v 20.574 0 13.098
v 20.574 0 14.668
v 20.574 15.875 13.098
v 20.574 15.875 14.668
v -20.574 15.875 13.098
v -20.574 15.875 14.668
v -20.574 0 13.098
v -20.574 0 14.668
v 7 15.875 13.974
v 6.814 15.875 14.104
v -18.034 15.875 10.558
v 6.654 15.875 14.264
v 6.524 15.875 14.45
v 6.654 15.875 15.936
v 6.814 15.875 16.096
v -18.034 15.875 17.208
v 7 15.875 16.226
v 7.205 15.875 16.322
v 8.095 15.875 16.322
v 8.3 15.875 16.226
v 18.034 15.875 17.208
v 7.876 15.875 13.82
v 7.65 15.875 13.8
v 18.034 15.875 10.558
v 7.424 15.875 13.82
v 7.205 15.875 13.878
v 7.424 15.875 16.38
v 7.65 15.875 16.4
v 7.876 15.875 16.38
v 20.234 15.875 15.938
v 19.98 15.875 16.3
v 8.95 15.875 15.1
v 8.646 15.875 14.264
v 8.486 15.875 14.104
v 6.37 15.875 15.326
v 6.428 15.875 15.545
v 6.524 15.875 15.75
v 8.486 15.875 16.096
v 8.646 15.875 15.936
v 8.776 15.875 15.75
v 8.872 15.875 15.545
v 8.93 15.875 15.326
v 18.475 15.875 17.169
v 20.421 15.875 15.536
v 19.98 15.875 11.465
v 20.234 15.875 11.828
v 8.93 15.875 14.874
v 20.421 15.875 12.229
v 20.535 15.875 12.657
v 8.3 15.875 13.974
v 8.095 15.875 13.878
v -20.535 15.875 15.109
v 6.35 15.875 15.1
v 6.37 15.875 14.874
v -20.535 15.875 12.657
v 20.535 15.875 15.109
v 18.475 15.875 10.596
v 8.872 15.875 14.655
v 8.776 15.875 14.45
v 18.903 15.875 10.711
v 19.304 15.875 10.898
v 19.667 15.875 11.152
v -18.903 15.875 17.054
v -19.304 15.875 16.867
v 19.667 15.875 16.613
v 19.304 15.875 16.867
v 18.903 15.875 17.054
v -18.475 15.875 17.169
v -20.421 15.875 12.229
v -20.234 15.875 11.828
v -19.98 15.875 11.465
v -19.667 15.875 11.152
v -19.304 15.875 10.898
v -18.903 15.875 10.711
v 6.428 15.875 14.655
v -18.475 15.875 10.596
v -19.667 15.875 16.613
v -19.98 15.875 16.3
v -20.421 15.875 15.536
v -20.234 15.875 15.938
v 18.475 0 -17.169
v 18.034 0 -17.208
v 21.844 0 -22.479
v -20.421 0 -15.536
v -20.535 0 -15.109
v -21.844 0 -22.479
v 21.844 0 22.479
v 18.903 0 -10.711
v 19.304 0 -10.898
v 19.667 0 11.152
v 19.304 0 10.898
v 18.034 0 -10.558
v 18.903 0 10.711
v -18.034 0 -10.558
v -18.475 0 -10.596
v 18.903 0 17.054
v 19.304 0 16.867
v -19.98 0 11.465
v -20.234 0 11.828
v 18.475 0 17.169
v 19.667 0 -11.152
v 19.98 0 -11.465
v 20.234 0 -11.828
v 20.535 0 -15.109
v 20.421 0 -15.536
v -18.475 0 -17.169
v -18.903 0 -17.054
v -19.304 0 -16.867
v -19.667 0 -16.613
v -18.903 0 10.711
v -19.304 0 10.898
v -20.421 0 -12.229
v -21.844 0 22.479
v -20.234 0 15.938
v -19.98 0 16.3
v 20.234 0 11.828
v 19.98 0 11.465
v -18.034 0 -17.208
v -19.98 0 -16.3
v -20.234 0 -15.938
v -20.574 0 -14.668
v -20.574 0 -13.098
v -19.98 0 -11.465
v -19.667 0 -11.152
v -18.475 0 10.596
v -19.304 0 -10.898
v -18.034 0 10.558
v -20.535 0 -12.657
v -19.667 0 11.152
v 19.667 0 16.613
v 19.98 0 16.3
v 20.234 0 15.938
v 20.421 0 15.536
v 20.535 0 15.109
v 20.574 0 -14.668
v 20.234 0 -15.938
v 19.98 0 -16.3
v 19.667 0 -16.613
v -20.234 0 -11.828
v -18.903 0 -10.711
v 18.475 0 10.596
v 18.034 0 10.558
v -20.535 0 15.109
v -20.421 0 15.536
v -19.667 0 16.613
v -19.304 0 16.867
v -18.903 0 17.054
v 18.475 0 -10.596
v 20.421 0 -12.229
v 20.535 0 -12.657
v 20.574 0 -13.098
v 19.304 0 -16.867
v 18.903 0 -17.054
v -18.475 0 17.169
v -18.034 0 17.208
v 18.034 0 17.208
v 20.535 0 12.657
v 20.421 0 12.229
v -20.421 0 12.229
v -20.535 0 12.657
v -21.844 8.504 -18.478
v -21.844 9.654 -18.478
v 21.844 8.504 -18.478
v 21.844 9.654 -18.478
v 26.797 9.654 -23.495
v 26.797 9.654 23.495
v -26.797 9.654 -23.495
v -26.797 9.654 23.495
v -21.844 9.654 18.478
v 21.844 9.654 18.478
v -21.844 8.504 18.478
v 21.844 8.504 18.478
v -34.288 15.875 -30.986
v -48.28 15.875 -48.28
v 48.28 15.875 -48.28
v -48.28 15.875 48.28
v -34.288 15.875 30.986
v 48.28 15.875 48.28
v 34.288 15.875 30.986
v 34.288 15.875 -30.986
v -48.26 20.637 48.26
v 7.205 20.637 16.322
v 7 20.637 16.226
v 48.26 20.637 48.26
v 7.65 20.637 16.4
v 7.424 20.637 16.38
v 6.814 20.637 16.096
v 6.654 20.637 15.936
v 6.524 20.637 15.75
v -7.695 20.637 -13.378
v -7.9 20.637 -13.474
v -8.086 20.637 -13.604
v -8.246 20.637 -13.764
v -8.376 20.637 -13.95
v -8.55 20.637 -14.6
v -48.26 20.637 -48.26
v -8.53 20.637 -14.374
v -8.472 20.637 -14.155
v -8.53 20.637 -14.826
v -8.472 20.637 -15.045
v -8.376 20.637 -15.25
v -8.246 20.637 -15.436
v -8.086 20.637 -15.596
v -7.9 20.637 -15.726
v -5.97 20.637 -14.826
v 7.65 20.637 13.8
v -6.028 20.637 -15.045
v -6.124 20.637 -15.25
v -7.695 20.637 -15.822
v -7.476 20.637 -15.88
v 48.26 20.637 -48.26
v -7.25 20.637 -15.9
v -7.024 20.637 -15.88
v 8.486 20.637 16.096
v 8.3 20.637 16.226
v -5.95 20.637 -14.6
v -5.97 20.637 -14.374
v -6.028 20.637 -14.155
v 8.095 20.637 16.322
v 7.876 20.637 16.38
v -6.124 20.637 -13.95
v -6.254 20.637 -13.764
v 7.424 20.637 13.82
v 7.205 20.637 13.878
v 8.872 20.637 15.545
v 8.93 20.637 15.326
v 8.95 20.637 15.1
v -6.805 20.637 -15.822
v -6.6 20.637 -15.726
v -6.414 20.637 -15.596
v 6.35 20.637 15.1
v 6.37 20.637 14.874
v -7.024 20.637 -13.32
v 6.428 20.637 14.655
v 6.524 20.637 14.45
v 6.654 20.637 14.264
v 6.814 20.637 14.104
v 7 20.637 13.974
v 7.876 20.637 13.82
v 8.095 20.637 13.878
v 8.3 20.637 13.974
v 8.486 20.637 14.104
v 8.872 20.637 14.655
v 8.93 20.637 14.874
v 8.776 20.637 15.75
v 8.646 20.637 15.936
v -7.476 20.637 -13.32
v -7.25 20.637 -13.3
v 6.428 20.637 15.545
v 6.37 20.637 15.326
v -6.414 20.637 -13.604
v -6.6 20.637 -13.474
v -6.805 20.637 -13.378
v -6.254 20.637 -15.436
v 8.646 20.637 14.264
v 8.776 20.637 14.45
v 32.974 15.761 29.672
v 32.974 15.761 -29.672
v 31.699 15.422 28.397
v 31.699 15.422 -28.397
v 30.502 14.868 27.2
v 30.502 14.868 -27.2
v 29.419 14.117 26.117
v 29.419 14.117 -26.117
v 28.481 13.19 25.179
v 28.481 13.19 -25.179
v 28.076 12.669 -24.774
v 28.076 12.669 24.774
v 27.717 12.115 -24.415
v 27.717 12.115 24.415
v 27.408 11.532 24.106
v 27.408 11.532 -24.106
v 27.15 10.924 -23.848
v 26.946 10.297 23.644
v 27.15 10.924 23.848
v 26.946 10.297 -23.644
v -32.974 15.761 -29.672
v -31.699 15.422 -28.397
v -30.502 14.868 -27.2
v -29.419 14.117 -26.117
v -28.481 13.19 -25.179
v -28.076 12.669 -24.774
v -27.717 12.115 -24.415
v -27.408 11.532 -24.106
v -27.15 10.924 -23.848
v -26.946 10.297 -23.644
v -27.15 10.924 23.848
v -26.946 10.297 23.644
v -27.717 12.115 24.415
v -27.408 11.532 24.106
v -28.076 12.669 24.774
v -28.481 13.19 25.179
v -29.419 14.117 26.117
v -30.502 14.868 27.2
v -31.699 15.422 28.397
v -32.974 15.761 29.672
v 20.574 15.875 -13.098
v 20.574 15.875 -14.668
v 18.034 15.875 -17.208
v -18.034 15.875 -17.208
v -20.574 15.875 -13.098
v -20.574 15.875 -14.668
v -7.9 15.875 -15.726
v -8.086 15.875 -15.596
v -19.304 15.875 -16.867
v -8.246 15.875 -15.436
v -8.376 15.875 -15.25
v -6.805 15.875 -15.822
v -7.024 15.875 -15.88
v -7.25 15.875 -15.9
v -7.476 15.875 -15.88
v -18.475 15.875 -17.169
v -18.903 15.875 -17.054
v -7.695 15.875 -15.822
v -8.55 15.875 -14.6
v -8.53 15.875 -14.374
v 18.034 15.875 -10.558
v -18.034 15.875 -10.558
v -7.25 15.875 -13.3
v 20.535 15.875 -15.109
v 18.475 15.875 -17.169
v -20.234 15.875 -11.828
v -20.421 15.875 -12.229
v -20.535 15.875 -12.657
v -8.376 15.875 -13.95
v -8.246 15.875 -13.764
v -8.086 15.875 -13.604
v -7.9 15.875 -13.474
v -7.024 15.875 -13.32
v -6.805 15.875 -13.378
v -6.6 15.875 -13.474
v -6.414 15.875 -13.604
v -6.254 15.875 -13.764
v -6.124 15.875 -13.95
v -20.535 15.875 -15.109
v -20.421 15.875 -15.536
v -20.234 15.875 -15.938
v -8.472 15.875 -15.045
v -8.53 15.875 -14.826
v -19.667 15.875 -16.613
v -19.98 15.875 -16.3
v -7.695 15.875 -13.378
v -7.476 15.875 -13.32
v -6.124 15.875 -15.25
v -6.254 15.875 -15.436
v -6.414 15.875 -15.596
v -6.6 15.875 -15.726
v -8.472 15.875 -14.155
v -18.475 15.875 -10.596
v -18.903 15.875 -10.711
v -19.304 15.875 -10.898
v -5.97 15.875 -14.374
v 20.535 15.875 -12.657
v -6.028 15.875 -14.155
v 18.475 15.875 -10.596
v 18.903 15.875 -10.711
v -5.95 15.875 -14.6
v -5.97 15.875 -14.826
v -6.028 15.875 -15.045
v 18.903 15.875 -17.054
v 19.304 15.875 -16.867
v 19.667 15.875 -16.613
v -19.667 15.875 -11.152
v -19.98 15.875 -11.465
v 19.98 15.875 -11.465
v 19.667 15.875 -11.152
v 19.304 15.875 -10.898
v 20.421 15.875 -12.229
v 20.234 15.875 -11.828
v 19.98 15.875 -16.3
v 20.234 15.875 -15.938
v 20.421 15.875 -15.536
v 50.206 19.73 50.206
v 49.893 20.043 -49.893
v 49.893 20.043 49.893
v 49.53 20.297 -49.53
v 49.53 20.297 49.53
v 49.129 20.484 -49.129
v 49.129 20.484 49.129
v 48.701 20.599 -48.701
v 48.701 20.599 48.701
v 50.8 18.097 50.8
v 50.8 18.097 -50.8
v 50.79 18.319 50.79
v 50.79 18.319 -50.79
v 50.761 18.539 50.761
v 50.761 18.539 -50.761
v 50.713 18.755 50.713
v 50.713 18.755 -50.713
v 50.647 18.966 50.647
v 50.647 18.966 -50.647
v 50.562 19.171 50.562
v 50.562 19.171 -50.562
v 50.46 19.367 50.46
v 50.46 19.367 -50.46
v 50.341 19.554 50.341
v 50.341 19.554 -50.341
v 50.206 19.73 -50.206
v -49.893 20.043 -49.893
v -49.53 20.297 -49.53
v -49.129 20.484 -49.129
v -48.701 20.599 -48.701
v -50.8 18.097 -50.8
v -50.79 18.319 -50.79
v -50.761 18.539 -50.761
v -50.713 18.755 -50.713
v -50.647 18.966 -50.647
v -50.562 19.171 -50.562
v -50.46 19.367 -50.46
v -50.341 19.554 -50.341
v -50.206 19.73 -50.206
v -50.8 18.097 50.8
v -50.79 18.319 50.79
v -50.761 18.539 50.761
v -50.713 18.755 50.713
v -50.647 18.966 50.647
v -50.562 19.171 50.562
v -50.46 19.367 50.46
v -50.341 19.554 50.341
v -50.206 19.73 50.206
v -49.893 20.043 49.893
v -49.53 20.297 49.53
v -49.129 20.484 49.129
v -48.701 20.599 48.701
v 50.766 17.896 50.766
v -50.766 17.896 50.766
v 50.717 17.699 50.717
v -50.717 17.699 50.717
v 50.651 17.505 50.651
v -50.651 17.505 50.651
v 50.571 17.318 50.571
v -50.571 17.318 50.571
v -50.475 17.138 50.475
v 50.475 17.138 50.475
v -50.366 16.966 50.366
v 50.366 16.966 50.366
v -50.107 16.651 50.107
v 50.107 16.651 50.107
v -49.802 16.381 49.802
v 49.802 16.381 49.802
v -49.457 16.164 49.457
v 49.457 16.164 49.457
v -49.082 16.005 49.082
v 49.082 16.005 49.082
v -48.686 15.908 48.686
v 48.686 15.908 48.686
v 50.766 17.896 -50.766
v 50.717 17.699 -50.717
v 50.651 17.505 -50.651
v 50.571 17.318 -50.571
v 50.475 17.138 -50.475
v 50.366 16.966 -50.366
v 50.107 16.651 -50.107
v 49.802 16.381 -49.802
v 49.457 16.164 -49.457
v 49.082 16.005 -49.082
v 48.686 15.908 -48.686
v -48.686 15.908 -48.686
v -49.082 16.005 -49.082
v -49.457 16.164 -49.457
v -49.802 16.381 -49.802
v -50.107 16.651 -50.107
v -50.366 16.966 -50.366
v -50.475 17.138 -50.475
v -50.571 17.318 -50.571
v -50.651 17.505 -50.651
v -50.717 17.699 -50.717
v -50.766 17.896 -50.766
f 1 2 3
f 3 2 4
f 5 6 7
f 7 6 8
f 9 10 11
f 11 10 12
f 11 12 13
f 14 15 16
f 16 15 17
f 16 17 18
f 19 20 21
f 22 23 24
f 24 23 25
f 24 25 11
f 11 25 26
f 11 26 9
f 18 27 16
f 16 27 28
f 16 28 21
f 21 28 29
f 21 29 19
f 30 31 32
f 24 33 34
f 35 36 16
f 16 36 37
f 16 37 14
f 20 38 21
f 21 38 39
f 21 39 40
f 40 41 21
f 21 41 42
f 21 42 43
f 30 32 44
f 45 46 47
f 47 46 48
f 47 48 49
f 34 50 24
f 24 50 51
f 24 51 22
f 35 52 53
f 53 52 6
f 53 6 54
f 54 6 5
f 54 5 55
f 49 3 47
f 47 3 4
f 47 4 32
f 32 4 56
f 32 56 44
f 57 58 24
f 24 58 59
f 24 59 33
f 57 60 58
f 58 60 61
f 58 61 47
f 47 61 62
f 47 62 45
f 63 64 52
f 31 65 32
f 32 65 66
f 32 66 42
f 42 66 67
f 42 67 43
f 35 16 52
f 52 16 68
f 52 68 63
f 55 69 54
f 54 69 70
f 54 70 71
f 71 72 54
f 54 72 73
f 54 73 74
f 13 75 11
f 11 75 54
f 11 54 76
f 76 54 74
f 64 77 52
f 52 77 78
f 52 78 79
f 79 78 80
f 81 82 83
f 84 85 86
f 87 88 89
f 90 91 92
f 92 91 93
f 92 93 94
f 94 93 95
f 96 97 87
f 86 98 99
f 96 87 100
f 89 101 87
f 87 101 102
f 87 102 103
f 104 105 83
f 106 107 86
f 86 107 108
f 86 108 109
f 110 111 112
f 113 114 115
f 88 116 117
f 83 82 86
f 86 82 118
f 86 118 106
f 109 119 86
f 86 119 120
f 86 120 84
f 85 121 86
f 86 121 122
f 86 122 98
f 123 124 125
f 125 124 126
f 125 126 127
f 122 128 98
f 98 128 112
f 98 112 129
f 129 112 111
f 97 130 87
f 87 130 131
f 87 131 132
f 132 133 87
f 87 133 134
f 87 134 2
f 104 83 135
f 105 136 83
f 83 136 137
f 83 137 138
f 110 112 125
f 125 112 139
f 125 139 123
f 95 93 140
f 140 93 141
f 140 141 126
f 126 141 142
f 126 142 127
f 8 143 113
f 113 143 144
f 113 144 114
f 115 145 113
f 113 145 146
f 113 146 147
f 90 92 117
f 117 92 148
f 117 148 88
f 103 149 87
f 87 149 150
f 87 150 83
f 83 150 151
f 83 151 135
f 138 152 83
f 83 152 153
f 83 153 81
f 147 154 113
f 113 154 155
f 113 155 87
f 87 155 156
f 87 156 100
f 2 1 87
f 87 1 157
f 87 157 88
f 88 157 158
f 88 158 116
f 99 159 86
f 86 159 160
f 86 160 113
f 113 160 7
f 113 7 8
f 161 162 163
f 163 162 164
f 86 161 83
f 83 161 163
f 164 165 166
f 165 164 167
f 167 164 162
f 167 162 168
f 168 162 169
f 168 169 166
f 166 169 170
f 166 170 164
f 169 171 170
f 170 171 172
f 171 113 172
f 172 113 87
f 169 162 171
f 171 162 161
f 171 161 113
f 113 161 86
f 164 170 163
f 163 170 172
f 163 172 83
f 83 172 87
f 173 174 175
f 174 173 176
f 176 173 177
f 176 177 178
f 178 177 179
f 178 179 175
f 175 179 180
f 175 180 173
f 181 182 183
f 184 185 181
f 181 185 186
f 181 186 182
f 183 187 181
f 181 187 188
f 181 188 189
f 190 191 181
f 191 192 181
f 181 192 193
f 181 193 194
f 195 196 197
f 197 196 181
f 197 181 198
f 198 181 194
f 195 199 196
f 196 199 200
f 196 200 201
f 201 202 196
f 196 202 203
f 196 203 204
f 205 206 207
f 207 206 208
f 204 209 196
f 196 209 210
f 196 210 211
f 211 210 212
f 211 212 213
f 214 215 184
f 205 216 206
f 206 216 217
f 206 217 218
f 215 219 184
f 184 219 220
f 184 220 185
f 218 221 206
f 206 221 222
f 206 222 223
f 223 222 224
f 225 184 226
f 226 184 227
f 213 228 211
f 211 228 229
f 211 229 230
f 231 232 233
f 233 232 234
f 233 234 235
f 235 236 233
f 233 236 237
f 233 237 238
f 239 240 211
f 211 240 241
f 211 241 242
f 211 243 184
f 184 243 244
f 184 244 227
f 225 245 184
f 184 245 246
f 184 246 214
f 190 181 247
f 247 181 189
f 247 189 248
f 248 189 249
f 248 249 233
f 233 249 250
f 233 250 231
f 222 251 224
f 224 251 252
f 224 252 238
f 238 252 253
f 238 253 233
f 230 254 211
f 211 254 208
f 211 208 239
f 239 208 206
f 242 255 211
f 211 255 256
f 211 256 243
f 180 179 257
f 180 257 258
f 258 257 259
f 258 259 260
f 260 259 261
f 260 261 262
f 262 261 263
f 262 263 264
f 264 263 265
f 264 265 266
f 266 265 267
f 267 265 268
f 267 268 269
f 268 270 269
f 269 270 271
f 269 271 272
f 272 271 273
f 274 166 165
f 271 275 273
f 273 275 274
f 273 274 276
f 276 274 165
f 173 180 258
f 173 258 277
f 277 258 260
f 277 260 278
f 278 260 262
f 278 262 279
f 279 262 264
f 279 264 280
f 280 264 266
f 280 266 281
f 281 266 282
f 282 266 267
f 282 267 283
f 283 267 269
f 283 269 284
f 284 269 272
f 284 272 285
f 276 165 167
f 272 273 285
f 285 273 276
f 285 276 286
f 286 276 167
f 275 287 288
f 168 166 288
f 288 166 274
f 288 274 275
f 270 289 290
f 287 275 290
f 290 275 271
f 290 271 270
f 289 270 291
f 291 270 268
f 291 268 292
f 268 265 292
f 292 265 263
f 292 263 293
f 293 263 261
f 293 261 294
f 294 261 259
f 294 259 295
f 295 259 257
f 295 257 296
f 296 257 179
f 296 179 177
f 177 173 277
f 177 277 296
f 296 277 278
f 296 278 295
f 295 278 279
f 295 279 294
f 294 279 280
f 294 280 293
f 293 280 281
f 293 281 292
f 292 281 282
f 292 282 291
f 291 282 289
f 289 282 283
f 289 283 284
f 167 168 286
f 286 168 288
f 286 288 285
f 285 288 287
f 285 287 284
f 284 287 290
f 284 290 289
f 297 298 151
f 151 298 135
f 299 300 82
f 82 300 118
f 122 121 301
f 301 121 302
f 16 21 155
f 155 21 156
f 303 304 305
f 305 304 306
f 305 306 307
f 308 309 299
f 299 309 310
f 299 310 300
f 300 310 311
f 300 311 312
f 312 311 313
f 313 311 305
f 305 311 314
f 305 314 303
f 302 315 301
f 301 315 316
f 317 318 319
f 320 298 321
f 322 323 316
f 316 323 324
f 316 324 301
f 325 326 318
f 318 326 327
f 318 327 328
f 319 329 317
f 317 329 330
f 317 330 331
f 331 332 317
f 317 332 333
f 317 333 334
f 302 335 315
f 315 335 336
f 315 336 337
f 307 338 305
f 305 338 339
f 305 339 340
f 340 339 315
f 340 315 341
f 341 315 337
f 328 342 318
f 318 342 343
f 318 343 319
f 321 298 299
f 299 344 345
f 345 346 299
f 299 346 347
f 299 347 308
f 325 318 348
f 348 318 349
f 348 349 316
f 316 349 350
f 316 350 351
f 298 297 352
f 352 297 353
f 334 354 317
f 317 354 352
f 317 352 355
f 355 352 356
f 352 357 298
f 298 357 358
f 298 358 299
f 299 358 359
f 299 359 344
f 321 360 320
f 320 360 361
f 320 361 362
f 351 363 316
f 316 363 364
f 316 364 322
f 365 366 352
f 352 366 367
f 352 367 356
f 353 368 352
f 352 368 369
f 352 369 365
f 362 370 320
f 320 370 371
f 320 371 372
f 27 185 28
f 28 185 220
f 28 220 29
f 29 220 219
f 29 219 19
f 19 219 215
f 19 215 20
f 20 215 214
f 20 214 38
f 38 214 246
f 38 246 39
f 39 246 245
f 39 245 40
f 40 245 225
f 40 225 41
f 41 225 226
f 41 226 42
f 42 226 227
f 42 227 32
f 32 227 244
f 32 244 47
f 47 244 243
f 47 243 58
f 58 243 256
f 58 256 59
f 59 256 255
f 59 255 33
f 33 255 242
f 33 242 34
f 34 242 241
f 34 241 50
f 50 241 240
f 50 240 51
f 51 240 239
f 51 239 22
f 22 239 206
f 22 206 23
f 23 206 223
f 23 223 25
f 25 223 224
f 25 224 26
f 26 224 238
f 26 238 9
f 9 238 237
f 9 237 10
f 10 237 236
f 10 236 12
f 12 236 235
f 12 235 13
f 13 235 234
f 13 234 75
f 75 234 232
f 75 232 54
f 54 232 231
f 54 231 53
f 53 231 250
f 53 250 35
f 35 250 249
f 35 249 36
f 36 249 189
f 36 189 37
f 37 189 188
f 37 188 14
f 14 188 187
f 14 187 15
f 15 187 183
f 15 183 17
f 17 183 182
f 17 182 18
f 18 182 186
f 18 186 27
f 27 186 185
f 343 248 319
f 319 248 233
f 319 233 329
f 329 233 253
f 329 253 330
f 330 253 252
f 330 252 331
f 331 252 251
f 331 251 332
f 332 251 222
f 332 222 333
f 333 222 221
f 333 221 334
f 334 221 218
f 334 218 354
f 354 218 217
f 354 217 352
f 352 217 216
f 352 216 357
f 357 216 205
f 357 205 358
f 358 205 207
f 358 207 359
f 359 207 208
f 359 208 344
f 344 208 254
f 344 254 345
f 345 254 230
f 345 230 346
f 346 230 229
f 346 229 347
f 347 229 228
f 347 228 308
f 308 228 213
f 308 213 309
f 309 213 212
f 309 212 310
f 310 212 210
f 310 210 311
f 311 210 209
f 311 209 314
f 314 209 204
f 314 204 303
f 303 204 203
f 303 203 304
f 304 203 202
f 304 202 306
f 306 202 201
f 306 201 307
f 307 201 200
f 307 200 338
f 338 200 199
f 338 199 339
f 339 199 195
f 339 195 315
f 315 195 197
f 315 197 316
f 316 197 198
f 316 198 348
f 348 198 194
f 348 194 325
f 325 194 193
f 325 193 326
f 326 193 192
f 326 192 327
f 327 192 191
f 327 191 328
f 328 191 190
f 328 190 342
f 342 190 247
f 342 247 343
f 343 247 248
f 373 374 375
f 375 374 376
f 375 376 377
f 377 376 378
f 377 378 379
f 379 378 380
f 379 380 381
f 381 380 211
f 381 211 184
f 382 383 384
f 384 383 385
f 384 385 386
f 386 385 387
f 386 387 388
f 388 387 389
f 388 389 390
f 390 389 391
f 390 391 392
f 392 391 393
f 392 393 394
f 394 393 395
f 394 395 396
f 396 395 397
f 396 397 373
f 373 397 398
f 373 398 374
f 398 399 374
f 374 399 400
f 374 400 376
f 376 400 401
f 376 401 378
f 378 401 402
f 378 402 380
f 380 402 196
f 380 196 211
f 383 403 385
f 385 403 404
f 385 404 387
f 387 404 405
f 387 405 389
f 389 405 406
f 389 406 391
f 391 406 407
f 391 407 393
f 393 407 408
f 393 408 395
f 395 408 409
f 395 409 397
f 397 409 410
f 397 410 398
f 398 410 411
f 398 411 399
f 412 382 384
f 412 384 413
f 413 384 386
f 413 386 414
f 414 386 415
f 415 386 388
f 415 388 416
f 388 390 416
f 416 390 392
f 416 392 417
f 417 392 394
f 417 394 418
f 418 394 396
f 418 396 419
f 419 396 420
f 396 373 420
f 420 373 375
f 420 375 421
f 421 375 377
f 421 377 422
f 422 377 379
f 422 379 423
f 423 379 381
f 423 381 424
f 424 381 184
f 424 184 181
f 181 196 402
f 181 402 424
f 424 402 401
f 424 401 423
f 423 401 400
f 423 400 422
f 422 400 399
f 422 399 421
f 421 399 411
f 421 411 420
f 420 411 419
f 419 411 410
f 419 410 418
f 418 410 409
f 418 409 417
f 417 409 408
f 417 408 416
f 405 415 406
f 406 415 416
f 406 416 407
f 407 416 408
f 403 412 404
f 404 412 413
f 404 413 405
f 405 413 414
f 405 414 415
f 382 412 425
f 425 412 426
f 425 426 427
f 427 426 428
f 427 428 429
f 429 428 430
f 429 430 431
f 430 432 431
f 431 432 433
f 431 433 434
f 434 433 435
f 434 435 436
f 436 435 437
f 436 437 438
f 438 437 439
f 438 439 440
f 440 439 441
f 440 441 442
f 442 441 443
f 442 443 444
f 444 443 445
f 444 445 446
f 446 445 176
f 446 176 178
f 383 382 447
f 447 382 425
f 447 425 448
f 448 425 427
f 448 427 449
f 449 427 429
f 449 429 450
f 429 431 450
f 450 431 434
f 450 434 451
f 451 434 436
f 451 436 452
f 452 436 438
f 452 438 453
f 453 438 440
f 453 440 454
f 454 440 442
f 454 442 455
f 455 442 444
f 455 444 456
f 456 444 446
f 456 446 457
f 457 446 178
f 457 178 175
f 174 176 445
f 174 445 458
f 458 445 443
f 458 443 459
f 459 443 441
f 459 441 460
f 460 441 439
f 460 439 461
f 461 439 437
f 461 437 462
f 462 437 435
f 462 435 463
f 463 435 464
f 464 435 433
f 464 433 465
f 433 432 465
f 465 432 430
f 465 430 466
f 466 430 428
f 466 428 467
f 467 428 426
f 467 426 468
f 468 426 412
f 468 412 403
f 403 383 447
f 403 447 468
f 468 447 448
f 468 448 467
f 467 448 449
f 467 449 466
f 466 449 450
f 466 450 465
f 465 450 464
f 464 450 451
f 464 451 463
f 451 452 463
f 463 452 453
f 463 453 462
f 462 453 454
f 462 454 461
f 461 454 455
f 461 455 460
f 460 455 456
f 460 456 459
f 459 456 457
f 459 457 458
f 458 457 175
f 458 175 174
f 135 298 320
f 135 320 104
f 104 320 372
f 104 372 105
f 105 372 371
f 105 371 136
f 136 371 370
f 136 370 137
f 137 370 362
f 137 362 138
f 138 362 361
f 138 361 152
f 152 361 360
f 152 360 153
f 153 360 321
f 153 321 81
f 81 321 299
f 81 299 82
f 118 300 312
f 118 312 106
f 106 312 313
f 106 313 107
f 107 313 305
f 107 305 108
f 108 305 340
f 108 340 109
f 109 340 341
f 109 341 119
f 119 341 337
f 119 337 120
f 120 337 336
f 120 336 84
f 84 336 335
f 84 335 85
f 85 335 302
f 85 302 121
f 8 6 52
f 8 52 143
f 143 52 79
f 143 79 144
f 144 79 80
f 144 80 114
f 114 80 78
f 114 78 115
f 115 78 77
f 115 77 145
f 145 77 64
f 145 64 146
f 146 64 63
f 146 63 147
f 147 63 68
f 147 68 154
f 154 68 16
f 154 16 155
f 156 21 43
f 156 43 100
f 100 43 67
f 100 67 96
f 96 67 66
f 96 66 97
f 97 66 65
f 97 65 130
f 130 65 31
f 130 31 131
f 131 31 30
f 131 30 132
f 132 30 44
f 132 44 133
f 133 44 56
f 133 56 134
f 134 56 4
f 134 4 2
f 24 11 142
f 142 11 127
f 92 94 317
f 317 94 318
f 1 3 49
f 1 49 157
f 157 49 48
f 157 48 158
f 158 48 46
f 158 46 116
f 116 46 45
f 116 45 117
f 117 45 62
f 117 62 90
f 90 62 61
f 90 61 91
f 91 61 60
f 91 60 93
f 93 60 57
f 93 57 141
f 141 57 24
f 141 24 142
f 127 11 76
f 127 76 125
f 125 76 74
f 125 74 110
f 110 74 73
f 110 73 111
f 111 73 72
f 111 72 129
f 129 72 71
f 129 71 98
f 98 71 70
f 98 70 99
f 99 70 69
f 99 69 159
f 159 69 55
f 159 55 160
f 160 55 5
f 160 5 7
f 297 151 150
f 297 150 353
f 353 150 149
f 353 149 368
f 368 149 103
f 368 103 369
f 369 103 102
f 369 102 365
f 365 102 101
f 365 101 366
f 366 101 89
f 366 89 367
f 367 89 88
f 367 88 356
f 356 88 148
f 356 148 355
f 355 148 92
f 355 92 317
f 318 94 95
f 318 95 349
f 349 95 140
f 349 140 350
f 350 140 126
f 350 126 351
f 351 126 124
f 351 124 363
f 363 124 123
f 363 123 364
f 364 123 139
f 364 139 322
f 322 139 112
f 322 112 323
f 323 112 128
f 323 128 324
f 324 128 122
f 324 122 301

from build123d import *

# Parameters (mm, degrees)
SKETCH1_W                  = 53.594
SKETCH1_H                  = 46.99
BOSS_EXTRUDE1_DEPTH        = 12.7
CUT_EXTRUDE1_DEPTH         = 62.251008522
SKETCH3_W                  = 4.953
SKETCH3_H                  = 9.653808373
CUT_EXTRUDE2_DEPTH         = 56.564640816
SKETCH4_W                  = 53.594
SKETCH4_H                  = 46.99
BOSS_EXTRUDE2_DEPTH        = 3.175
SKETCH5_W                  = 101.6
SKETCH5_H                  = 101.6
BOSS_EXTRUDE3_DEPTH        = 4.7625
FILLET1_R                  = 7.62
SKETCH6_W                  = 41.148
SKETCH6_H                  = 34.415052436
CUT_EXTRUDE3_DEPTH         = 15.875
F_2_6_2_6_DIAMETER_HOLE1_D = 2.6
FILLET2_R                  = 2.54
FILLET3_R                  = 2.54
FILLET4_R                  = 2.54
BOSS_EXTRUDE4_REACH        = 76.747
SKETCH9_W                  = 41.148
SKETCH9_H                  = 21.115558174
FILLET5_R                  = 2.54


with BuildPart() as part:
    # Sketch1 → Boss-Extrude1 (new body)
    with BuildSketch(Plane(origin=(0, 0, 0), x_dir=(1, 0, 0), z_dir=(0, 1, 0))):
        Rectangle(SKETCH1_W, SKETCH1_H)
    extrude(amount=BOSS_EXTRUDE1_DEPTH)

    # Sketch2 → Cut-Extrude1 (cut, through all)
    with BuildSketch(Plane(origin=(-26.797, 0, -3.302), x_dir=(0, 0, -1), z_dir=(1, 0, 0))):
        Polygon((-25.781, 0), (-21.779526218, 8.503564639), (-21.779526218, 9.653808373), (-26.797, 9.653808373), (-26.797, 0), align=None)
        Polygon((19.177, 0), (20.193, 0), (20.193, 9.653808373), (15.175526218, 9.653808373), (15.175526218, 8.503564639), align=None)
    extrude(amount=CUT_EXTRUDE1_DEPTH, mode=Mode.SUBTRACT)

    # Sketch3 → Cut-Extrude2 (cut, through all)
    with BuildSketch(Plane.XY.offset(23.495)):
        with Locations((-24.3205, 4.826904187)):
            Rectangle(SKETCH3_W, SKETCH3_H)
        with Locations((24.3205, 4.826904187)):
            Rectangle(SKETCH3_W, SKETCH3_H)
    extrude(amount=-CUT_EXTRUDE2_DEPTH, mode=Mode.SUBTRACT)

    # Sketch4 → Boss-Extrude2 (add)
    with BuildSketch(Plane(origin=(0, 12.7, 0), x_dir=(1, 0, 0), z_dir=(0, 1, 0))):
        Rectangle(SKETCH4_W, SKETCH4_H)
    extrude(amount=BOSS_EXTRUDE2_DEPTH)

    # Sketch5 → Boss-Extrude3 (add)
    with BuildSketch(Plane(origin=(0, 15.875, 0), x_dir=(1, 0, 0), z_dir=(0, 1, 0))):
        Rectangle(SKETCH5_W, SKETCH5_H)
    extrude(amount=BOSS_EXTRUDE3_DEPTH)

    # Fillet1
    # the kernel refuses this fillet: 7.62 mm, written as the material it adds along each edge
    with BuildSketch(Plane(origin=(-26.797, 15.875, -23.495), x_dir=(-1, 0, 0), z_dir=(0, 0, 1)), Plane(origin=(26.797, 15.875, 23.495), x_dir=(1, 0, 0), z_dir=(0, 0, -1))) as fillet1_piece_1:
        with BuildLine():
            CenterArc((7.490509671, 7.62), FILLET1_R, 190.577809731, 79.422190269)
            Line((0, 6.221191627), (-0.149810193, 6.19321546))
            ThreePointArc((-0.149810193, 6.19321546), (-0.1524, 3.110595814), (-0.1524, 0))
            Line((-0.1524, 0), (0, -0.1524))
            Line((0, -0.1524), (7.490509671, -0.1524))
            Line((7.490509671, -0.1524), (7.490509671, 0))
        make_face()
    extrude(amount=46.99)
    with BuildSketch(Plane(origin=(26.797, 15.875, -23.495), x_dir=(0, 0, -1), z_dir=(-1, 0, 0)), Plane(origin=(-26.797, 15.875, 23.495), x_dir=(0, 0, 1), z_dir=(1, 0, 0))) as fillet1_piece_2:
        with BuildLine():
            CenterArc((7.490509671, 7.62), FILLET1_R, 190.577809731, 79.422190269)
            Line((0, 6.221191627), (-0.149810193, 6.19321546))
            ThreePointArc((-0.149810193, 6.19321546), (-0.1524, 3.110595814), (-0.1524, 0))
            Line((-0.1524, 0), (0, -0.1524))
            Line((0, -0.1524), (7.490509671, -0.1524))
            Line((7.490509671, -0.1524), (7.490509671, 0))
        make_face()
    extrude(amount=53.594)
    with BuildSketch(Plane(origin=(26.797, 15.875, -23.495), x_dir=(0, 0, -1), z_dir=(-1, 0, 0))) as fillet1_piece_3a_section:
        with BuildLine():
            CenterArc((7.490509671, 7.62), FILLET1_R, 190.577809731, 79.422190269)
            Line((0, 6.221191627), (-0.149810193, 6.19321546))
            ThreePointArc((-0.149810193, 6.19321546), (-0.1524, 3.110595814), (-0.1524, 0))
            Line((-0.1524, 0), (0, -0.1524))
            Line((0, -0.1524), (7.490509671, -0.1524))
            Line((7.490509671, -0.1524), (7.490509671, 0))
        make_face()
    fillet1_piece_3a = extrude(amount=72.320274178, mode=Mode.PRIVATE)
    fillet1_piece_3a = split(fillet1_piece_3a, bisect_by=Plane(origin=(-26.797, 15.875, -23.495), z_dir=(-1, 0, 0)), keep=Keep.TOP, mode=Mode.PRIVATE)
    with BuildSketch(Plane(origin=(-26.797, 15.875, -42.221274178), x_dir=(-1, 0, 0), z_dir=(0, 0, 1))) as fillet1_piece_3b_section:
        with BuildLine():
            CenterArc((7.490509671, 7.62), FILLET1_R, 190.577809731, 79.422190269)
            Line((0, 6.221191627), (-0.149810193, 6.19321546))
            ThreePointArc((-0.149810193, 6.19321546), (-0.1524, 3.110595814), (-0.1524, 0))
            Line((-0.1524, 0), (0, -0.1524))
            Line((0, -0.1524), (7.490509671, -0.1524))
            Line((7.490509671, -0.1524), (7.490509671, 0))
        make_face()
    fillet1_piece_3b = extrude(amount=65.716274178, mode=Mode.PRIVATE)
    fillet1_piece_3b = split(fillet1_piece_3b, bisect_by=Plane(origin=(-26.797, 15.875, -23.495), z_dir=(0, 0, -1)), keep=Keep.TOP, mode=Mode.PRIVATE)
    fillet1_piece_3 = fillet1_piece_3a & fillet1_piece_3b
    add(fillet1_piece_3)
    with BuildSketch(Plane(origin=(-45.523274178, 15.875, 23.495), x_dir=(0, 0, 1), z_dir=(1, 0, 0))) as fillet1_piece_4a_section:
        with BuildLine():
            CenterArc((7.490509671, 7.62), FILLET1_R, 190.577809731, 79.422190269)
            Line((0, 6.221191627), (-0.149810193, 6.19321546))
            ThreePointArc((-0.149810193, 6.19321546), (-0.1524, 3.110595814), (-0.1524, 0))
            Line((-0.1524, 0), (0, -0.1524))
            Line((0, -0.1524), (7.490509671, -0.1524))
            Line((7.490509671, -0.1524), (7.490509671, 0))
        make_face()
    fillet1_piece_4a = extrude(amount=72.320274178, mode=Mode.PRIVATE)
    fillet1_piece_4a = split(fillet1_piece_4a, bisect_by=Plane(origin=(-26.797, 15.875, 23.495), z_dir=(-1, 0, 0)), keep=Keep.TOP, mode=Mode.PRIVATE)
    with BuildSketch(Plane(origin=(-26.797, 15.875, -23.495), x_dir=(-1, 0, 0), z_dir=(0, 0, 1))) as fillet1_piece_4b_section:
        with BuildLine():
            CenterArc((7.490509671, 7.62), FILLET1_R, 190.577809731, 79.422190269)
            Line((0, 6.221191627), (-0.149810193, 6.19321546))
            ThreePointArc((-0.149810193, 6.19321546), (-0.1524, 3.110595814), (-0.1524, 0))
            Line((-0.1524, 0), (0, -0.1524))
            Line((0, -0.1524), (7.490509671, -0.1524))
            Line((7.490509671, -0.1524), (7.490509671, 0))
        make_face()
    fillet1_piece_4b = extrude(amount=65.716274178, mode=Mode.PRIVATE)
    fillet1_piece_4b = split(fillet1_piece_4b, bisect_by=Plane(origin=(-26.797, 15.875, 23.495), z_dir=(0, 0, 1)), keep=Keep.TOP, mode=Mode.PRIVATE)
    fillet1_piece_4 = fillet1_piece_4a & fillet1_piece_4b
    add(fillet1_piece_4)
    with BuildSketch(Plane(origin=(26.797, 15.875, 23.495), x_dir=(1, 0, 0), z_dir=(0, 0, -1))) as fillet1_piece_5a_section:
        with BuildLine():
            CenterArc((7.490509671, 7.62), FILLET1_R, 190.577809731, 79.422190269)
            Line((0, 6.221191627), (-0.149810193, 6.19321546))
            ThreePointArc((-0.149810193, 6.19321546), (-0.1524, 3.110595814), (-0.1524, 0))
            Line((-0.1524, 0), (0, -0.1524))
            Line((0, -0.1524), (7.490509671, -0.1524))
            Line((7.490509671, -0.1524), (7.490509671, 0))
        make_face()
    fillet1_piece_5a = extrude(amount=65.716274178, mode=Mode.PRIVATE)
    fillet1_piece_5a = split(fillet1_piece_5a, bisect_by=Plane(origin=(26.797, 15.875, -23.495), z_dir=(0, 0, -1)), keep=Keep.TOP, mode=Mode.PRIVATE)
    with BuildSketch(Plane(origin=(45.523274178, 15.875, -23.495), x_dir=(0, 0, -1), z_dir=(-1, 0, 0))) as fillet1_piece_5b_section:
        with BuildLine():
            CenterArc((7.490509671, 7.62), FILLET1_R, 190.577809731, 79.422190269)
            Line((0, 6.221191627), (-0.149810193, 6.19321546))
            ThreePointArc((-0.149810193, 6.19321546), (-0.1524, 3.110595814), (-0.1524, 0))
            Line((-0.1524, 0), (0, -0.1524))
            Line((0, -0.1524), (7.490509671, -0.1524))
            Line((7.490509671, -0.1524), (7.490509671, 0))
        make_face()
    fillet1_piece_5b = extrude(amount=72.320274178, mode=Mode.PRIVATE)
    fillet1_piece_5b = split(fillet1_piece_5b, bisect_by=Plane(origin=(26.797, 15.875, -23.495), z_dir=(1, 0, 0)), keep=Keep.TOP, mode=Mode.PRIVATE)
    fillet1_piece_5 = fillet1_piece_5a & fillet1_piece_5b
    add(fillet1_piece_5)
    with BuildSketch(Plane(origin=(-26.797, 15.875, 23.495), x_dir=(0, 0, 1), z_dir=(1, 0, 0))) as fillet1_piece_6a_section:
        with BuildLine():
            CenterArc((7.490509671, 7.62), FILLET1_R, 190.577809731, 79.422190269)
            Line((0, 6.221191627), (-0.149810193, 6.19321546))
            ThreePointArc((-0.149810193, 6.19321546), (-0.1524, 3.110595814), (-0.1524, 0))
            Line((-0.1524, 0), (0, -0.1524))
            Line((0, -0.1524), (7.490509671, -0.1524))
            Line((7.490509671, -0.1524), (7.490509671, 0))
        make_face()
    fillet1_piece_6a = extrude(amount=72.320274178, mode=Mode.PRIVATE)
    fillet1_piece_6a = split(fillet1_piece_6a, bisect_by=Plane(origin=(26.797, 15.875, 23.495), z_dir=(1, 0, 0)), keep=Keep.TOP, mode=Mode.PRIVATE)
    with BuildSketch(Plane(origin=(26.797, 15.875, 42.221274178), x_dir=(1, 0, 0), z_dir=(0, 0, -1))) as fillet1_piece_6b_section:
        with BuildLine():
            CenterArc((7.490509671, 7.62), FILLET1_R, 190.577809731, 79.422190269)
            Line((0, 6.221191627), (-0.149810193, 6.19321546))
            ThreePointArc((-0.149810193, 6.19321546), (-0.1524, 3.110595814), (-0.1524, 0))
            Line((-0.1524, 0), (0, -0.1524))
            Line((0, -0.1524), (7.490509671, -0.1524))
            Line((7.490509671, -0.1524), (7.490509671, 0))
        make_face()
    fillet1_piece_6b = extrude(amount=65.716274178, mode=Mode.PRIVATE)
    fillet1_piece_6b = split(fillet1_piece_6b, bisect_by=Plane(origin=(26.797, 15.875, 23.495), z_dir=(0, 0, 1)), keep=Keep.TOP, mode=Mode.PRIVATE)
    fillet1_piece_6 = fillet1_piece_6a & fillet1_piece_6b
    add(fillet1_piece_6)

    # Sketch6 → Cut-Extrude3 (cut)
    with BuildSketch(Plane.XZ):
        Rectangle(SKETCH6_W, SKETCH6_H)
    extrude(amount=-CUT_EXTRUDE3_DEPTH, mode=Mode.SUBTRACT)

    # Ø2.6 (2.6) Diameter Hole1 (through all)
    with Locations(Plane(origin=(0, 20.6375, 0), x_dir=(1, 0, 0), z_dir=(0, 1, 0))):
        with Locations((-7.25, 14.6), (7.65, -15.1)):
            Hole(F_2_6_2_6_DIAMETER_HOLE1_D / 2)

    # Fillet2
    fillet2_edges = [part.edges().sort_by_distance(p)[0] for p in [
        (50.8, 20.6375, 0),
        (0, 20.6375, -50.8),
        (-50.8, 20.6375, 0),
        (0, 20.6375, 50.8),
    ]]
    fillet(fillet2_edges, radius=FILLET2_R)

    # Fillet3
    # the kernel refuses this fillet: 2.54 mm, written as the material it takes off along each edge
    with BuildSketch(Plane(origin=(57.100195309, 15.875, -50.8), x_dir=(0, 0, 1), z_dir=(-1, 0, 0)), Plane(origin=(50.8, 15.875, 57.100195309), x_dir=(-1, 0, 0), z_dir=(0, 0, -1))) as fillet3_piece_1:
        with BuildLine():
            CenterArc((2.520078124, 2.54), FILLET3_R, 187.180755781, 82.819244219)
            Line((0, 2.2225), (-0.050401562, 2.21615))
            ThreePointArc((-0.050401562, 2.21615), (-0.0508, 1.11125), (-0.0508, 0))
            Line((-0.0508, 0), (0, -0.0508))
            Line((0, -0.0508), (2.520078124, -0.0508))
            Line((2.520078124, -0.0508), (2.520078124, 0))
        make_face()
    extrude(amount=114.200390619, mode=Mode.SUBTRACT)
    with BuildSketch(Plane(origin=(-50.8, 15.875, -57.100195309), x_dir=(0, 1, 0), z_dir=(0, 0, 1)), Plane(origin=(-57.100195309, 15.875, 50.8), x_dir=(0, 1, 0), z_dir=(1, 0, 0))) as fillet3_piece_2:
        with BuildLine():
            CenterArc((2.54, -2.520078124), FILLET3_R, 97.180755781, 82.819244219)
            Line((0, -2.520078124), (-0.0508, -2.520078124))
            Line((-0.0508, -2.520078124), (-0.0508, 0))
            Line((-0.0508, 0), (0, 0.0508))
            ThreePointArc((0, 0.0508), (1.11125, 0.0508), (2.21615, 0.050401562))
            Line((2.21615, 0.050401562), (2.2225, 0))
        make_face()
    extrude(amount=114.200390619, mode=Mode.SUBTRACT)

    # Fillet4
    fillet4_edges = [part.edges().sort_by_distance(p)[0] for p in [
        (20.574, 7.9375, 17.207526218),
        (20.574, 7.9375, -17.207526218),
        (-20.574, 7.9375, -17.207526218),
        (-20.574, 7.9375, 17.207526218),
    ]]
    fillet(fillet4_edges, radius=FILLET4_R)

    # Sketch9 → Boss-Extrude4 (add, up to next)
    with BuildSketch(Plane.XZ, mode=Mode.PRIVATE) as boss_extrude4_sk1:
        Rectangle(SKETCH9_W, SKETCH9_H)
    boss_extrude4_tool1 = extrude(boss_extrude4_sk1.sketch, amount=-BOSS_EXTRUDE4_REACH, mode=Mode.PRIVATE) - part.part
    add(boss_extrude4_tool1.solids().sort_by_distance((0, 0, 0))[0])

    # Fillet5
    fillet5_edges = [part.edges().sort_by_distance(p)[0] for p in [
        (-20.574, 7.9375, 10.557779087),
        (20.574, 7.9375, -10.557779087),
        (-20.574, 7.9375, -10.557779087),
        (20.574, 7.9375, 10.557779087),
    ]]
    fillet(fillet5_edges, radius=FILLET5_R)


solid = part.part
